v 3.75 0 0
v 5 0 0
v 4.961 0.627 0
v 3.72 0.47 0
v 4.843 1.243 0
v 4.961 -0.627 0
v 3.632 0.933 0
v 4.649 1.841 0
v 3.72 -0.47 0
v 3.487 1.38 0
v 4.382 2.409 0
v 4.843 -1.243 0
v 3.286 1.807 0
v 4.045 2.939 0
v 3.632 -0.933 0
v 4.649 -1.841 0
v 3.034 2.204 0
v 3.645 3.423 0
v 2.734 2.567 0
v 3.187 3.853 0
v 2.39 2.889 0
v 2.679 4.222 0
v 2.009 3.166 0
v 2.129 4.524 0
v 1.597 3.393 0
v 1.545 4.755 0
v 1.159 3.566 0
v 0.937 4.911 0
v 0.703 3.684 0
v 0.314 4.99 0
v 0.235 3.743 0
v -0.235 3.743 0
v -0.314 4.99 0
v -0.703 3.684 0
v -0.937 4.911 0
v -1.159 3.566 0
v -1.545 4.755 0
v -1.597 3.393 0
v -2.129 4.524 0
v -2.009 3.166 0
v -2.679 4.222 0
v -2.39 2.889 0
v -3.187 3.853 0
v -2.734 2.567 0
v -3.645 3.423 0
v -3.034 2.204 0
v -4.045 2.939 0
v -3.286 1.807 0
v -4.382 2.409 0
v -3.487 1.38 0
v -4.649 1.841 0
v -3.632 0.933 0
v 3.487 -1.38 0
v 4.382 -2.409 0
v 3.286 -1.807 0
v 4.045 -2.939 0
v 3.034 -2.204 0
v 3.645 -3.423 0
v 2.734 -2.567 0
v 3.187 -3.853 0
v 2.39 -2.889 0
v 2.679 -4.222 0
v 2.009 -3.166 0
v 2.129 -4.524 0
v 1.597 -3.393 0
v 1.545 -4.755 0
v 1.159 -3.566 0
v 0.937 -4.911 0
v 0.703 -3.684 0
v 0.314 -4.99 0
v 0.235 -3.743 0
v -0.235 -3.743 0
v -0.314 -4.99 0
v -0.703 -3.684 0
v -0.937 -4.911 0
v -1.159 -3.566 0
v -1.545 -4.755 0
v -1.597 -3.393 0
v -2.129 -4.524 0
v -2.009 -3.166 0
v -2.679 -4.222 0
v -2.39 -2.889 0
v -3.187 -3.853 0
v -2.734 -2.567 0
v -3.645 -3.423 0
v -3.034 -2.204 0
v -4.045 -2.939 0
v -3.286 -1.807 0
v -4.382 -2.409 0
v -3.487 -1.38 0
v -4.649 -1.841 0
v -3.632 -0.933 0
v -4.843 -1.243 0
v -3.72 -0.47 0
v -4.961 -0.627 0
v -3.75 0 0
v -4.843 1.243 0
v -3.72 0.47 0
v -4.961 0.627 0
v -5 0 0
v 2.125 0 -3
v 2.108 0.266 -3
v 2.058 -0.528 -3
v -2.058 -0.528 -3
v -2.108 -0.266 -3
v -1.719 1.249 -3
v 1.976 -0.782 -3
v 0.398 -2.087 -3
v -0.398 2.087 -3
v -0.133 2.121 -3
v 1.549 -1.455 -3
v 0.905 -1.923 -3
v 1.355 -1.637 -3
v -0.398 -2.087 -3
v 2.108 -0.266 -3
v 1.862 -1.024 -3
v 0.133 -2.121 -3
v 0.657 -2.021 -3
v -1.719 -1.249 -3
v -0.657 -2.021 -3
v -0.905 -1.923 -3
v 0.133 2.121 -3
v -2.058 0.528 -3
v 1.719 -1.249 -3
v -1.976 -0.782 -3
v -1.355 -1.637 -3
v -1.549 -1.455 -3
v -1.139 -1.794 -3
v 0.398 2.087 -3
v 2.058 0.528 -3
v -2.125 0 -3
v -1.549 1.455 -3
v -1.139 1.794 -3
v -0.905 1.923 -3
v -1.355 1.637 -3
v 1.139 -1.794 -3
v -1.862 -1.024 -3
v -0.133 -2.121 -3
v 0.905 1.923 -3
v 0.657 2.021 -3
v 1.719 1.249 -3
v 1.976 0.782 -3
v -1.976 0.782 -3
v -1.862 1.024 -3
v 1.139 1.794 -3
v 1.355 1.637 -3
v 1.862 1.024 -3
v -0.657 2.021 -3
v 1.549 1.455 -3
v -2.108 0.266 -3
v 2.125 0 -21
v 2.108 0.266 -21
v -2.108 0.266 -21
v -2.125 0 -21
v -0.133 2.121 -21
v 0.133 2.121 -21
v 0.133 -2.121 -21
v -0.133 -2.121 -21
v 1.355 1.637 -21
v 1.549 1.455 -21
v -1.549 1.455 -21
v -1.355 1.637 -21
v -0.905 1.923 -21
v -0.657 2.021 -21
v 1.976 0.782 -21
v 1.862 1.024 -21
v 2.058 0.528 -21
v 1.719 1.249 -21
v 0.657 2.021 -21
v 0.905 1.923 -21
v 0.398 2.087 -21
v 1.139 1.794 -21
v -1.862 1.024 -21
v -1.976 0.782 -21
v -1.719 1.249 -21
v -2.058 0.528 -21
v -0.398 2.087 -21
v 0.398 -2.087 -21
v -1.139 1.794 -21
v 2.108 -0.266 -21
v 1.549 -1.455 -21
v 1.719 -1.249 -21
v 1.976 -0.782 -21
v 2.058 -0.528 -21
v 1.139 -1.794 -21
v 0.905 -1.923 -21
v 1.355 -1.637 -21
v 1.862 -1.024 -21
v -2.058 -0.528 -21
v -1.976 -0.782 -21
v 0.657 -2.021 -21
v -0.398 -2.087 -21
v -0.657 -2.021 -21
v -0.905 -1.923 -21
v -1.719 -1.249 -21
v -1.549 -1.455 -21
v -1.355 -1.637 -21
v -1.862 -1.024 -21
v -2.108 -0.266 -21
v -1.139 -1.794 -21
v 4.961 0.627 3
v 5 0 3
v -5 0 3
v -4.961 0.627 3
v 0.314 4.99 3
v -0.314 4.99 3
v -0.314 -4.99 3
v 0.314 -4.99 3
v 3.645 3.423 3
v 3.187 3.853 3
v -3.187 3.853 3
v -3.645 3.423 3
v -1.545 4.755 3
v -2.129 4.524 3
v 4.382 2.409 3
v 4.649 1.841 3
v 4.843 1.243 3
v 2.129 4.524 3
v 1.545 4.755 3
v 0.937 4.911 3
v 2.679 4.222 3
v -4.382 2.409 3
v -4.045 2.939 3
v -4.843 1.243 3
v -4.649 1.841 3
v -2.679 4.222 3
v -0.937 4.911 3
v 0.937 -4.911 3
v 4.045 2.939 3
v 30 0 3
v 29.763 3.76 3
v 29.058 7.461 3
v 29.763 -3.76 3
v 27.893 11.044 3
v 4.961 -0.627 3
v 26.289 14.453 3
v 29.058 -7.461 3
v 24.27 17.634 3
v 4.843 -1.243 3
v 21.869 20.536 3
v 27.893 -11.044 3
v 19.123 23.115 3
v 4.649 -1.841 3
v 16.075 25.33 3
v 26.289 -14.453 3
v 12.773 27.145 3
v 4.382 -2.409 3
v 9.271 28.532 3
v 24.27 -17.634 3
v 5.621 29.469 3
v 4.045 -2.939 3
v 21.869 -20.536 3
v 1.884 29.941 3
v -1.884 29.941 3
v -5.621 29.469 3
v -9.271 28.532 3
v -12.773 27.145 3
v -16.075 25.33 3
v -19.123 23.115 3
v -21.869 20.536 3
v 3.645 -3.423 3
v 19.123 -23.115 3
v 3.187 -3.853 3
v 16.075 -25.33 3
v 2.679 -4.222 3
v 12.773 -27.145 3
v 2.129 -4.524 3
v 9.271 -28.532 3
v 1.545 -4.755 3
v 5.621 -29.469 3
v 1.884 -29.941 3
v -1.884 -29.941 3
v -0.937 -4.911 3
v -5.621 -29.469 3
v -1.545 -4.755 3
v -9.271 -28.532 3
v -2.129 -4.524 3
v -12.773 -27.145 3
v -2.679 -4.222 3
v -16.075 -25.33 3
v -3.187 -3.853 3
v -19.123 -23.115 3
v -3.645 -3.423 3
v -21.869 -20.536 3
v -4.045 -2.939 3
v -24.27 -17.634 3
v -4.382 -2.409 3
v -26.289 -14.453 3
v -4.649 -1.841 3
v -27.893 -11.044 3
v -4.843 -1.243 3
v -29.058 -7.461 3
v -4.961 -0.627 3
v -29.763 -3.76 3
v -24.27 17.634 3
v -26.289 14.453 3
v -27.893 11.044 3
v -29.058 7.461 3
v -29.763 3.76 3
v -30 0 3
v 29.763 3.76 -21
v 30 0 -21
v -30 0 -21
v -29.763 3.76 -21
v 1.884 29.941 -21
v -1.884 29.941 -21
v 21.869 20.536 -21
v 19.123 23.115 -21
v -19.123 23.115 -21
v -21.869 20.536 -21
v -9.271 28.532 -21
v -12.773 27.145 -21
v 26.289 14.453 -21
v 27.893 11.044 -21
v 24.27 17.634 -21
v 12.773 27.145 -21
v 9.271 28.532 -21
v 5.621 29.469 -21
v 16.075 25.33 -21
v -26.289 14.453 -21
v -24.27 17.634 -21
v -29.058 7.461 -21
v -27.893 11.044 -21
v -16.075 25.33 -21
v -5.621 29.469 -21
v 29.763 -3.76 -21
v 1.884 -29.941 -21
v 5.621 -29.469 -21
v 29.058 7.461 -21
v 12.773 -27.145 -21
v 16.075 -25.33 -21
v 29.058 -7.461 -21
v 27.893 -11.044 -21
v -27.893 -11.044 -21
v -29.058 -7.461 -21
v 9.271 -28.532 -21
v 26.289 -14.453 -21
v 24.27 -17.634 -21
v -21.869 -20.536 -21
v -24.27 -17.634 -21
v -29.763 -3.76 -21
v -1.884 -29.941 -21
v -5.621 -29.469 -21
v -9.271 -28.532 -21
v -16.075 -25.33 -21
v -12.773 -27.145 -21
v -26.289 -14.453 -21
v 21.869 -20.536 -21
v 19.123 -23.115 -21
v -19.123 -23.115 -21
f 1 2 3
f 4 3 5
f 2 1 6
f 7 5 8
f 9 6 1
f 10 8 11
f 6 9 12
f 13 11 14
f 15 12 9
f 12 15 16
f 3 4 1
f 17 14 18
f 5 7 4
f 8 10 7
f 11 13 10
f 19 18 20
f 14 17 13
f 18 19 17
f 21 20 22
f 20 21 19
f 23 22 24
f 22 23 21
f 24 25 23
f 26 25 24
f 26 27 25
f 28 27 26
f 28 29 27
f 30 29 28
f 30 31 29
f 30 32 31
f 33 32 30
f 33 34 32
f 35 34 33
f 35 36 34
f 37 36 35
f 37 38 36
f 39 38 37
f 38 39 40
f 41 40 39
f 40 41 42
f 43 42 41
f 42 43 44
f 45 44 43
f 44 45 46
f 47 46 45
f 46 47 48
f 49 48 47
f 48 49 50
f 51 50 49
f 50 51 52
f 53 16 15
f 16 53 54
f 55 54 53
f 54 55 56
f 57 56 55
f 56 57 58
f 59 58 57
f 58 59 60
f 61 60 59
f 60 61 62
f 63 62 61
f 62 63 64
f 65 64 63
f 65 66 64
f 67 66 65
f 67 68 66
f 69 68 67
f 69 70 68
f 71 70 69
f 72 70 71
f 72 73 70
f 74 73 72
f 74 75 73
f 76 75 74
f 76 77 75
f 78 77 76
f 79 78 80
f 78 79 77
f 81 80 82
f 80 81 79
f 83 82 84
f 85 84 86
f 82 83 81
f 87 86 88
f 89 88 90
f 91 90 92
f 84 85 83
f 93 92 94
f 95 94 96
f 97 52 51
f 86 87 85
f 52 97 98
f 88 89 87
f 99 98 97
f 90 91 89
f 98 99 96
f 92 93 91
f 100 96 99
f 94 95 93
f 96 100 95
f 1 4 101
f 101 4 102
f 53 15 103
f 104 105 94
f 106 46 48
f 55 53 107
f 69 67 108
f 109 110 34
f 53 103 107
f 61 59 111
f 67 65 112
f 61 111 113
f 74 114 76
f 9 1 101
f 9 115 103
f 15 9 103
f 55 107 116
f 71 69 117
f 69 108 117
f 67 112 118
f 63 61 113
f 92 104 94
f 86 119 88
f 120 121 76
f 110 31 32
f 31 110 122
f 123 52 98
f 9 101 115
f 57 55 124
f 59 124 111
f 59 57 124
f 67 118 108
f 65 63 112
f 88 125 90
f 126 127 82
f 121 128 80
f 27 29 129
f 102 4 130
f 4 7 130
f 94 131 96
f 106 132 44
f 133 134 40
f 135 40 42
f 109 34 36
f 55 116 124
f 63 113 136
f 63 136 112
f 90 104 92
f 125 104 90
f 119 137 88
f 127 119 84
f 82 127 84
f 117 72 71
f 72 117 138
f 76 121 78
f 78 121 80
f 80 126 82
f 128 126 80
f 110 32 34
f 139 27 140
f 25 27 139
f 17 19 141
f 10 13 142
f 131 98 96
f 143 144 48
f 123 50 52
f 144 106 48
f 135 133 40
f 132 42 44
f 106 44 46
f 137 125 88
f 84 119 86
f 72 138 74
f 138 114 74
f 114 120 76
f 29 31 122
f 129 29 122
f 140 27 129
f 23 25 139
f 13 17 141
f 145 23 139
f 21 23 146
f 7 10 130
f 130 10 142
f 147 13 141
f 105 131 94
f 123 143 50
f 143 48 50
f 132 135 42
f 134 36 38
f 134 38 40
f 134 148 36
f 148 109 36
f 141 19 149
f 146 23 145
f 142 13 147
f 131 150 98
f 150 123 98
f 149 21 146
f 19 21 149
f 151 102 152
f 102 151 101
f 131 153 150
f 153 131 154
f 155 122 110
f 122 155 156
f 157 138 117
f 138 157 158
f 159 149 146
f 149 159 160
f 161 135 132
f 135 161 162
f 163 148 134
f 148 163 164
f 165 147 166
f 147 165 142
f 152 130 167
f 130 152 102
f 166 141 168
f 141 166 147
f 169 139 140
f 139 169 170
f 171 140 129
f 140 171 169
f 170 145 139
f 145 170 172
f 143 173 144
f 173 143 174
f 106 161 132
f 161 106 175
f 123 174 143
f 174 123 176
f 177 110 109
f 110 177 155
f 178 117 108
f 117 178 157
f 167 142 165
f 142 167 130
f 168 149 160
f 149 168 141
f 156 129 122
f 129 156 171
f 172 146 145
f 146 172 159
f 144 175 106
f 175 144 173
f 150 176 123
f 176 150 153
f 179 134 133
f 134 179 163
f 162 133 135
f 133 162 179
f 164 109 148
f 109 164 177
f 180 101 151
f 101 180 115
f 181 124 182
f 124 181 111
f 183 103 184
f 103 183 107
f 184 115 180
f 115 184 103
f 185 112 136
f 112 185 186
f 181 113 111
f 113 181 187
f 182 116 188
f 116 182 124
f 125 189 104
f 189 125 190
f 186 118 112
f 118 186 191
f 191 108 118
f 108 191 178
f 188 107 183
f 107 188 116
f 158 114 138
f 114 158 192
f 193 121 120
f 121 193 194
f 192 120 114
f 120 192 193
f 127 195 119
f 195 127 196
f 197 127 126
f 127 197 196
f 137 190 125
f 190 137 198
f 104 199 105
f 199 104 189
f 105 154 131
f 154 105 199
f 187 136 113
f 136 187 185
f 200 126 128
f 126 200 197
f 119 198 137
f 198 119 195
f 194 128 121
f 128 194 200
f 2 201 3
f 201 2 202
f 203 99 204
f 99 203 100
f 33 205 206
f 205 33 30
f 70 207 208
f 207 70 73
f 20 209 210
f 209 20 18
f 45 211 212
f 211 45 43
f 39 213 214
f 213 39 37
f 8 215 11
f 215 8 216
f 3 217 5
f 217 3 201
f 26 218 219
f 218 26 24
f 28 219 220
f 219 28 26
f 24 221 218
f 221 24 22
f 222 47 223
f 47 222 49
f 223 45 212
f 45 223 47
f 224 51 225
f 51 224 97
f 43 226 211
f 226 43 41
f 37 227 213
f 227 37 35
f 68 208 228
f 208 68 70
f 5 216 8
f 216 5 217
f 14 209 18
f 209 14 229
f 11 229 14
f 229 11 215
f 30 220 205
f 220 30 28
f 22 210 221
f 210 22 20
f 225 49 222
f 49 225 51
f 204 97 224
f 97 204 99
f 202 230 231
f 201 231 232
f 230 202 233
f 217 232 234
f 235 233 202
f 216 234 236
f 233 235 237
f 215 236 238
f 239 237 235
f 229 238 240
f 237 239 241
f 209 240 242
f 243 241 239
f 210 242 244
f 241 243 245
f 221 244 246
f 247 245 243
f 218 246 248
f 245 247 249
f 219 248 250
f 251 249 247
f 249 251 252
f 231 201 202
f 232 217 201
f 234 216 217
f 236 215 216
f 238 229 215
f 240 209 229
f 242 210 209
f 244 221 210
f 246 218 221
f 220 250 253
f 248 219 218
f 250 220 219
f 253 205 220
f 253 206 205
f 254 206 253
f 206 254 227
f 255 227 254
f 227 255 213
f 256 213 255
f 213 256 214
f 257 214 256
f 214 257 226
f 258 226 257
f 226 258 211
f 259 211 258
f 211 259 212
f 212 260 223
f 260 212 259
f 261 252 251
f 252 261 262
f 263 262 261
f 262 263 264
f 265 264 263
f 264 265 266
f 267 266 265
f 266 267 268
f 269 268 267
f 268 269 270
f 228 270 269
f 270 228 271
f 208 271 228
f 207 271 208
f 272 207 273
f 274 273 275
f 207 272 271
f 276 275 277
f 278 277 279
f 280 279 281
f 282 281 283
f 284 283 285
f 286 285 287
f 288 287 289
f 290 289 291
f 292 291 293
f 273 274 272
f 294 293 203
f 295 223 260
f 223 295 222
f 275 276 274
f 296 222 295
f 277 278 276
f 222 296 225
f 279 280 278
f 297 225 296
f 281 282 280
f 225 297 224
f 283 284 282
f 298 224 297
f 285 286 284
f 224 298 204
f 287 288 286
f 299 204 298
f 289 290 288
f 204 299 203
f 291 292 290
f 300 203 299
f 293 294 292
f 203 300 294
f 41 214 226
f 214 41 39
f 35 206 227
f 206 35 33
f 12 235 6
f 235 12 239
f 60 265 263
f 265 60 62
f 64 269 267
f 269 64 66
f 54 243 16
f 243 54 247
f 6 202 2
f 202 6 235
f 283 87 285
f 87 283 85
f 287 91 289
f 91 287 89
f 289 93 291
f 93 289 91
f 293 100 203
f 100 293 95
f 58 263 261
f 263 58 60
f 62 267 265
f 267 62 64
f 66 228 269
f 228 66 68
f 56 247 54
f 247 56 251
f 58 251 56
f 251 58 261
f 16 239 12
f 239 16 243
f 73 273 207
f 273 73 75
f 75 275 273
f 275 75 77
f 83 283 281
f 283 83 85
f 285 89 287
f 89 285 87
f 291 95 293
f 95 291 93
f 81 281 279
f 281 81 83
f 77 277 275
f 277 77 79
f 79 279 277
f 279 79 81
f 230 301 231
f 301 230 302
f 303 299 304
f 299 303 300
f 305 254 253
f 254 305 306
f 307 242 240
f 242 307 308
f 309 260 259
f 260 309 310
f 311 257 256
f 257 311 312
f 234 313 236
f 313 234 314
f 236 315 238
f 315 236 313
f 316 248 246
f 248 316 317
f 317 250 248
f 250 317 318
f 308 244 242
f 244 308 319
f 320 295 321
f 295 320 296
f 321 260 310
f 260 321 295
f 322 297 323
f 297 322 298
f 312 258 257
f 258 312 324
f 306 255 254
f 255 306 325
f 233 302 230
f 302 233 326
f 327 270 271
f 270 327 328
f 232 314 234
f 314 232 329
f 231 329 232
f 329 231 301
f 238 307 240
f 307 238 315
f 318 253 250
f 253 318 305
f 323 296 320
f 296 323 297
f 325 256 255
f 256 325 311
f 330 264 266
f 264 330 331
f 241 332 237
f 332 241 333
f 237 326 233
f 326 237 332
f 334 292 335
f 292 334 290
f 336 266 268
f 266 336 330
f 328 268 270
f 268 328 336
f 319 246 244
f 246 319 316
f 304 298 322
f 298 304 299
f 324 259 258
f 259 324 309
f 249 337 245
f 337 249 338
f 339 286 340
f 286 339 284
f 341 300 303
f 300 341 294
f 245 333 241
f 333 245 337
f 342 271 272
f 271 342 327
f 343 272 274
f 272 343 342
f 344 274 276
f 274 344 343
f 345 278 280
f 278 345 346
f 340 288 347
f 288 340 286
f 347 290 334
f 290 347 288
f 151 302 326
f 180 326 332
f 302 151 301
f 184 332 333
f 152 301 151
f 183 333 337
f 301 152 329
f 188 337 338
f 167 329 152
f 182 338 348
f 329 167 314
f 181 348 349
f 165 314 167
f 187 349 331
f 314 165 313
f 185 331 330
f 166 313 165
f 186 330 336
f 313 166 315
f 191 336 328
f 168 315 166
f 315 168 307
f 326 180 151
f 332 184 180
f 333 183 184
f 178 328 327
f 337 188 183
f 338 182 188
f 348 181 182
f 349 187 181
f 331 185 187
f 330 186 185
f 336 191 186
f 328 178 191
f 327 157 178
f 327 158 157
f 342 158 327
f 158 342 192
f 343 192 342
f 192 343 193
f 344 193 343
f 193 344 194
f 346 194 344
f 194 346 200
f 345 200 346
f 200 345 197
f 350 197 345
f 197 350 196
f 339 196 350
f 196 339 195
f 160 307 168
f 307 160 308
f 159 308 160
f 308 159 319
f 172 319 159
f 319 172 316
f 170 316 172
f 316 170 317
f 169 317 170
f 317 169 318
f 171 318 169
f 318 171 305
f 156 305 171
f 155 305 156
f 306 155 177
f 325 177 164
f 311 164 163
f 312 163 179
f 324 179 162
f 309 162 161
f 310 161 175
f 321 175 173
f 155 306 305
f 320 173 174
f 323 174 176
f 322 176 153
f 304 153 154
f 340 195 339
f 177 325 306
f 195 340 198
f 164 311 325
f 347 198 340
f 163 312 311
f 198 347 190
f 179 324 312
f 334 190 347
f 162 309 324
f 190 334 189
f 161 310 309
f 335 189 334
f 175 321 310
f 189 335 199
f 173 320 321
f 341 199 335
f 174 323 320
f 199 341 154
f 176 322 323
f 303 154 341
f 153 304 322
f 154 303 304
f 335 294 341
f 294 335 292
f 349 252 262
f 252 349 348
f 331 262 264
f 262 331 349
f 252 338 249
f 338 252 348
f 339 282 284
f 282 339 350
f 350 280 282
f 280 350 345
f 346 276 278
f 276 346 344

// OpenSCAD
$fn = 50;


difference() {
	union() {
		translate(v = [0, 0, -21.0000000000]) {
			cylinder(h = 24, r = 30.0000000000);
		}
	}
	union() {
		translate(v = [0, 0, 0]) {
			rotate(a = [0, 0, 0]) {
				difference() {
					union() {
						translate(v = [0, 0, -24.0000000000]) {
							cylinder(h = 24, r = 2.0000000000);
						}
						translate(v = [0, 0, -3]) {
							cylinder(h = 3, r1 = 2.1250000000, r2 = 3.7500000000);
						}
						translate(v = [0, 0, -24.0000000000]) {
							cylinder(h = 24, r = 2.1250000000);
						}
						translate(v = [0, 0, -24.0000000000]) {
							cylinder(h = 24, r = 2.0000000000);
						}
					}
					union();
				}
			}
		}
		#cylinder(h = 3, r = 5.0000000000);
	}
}
